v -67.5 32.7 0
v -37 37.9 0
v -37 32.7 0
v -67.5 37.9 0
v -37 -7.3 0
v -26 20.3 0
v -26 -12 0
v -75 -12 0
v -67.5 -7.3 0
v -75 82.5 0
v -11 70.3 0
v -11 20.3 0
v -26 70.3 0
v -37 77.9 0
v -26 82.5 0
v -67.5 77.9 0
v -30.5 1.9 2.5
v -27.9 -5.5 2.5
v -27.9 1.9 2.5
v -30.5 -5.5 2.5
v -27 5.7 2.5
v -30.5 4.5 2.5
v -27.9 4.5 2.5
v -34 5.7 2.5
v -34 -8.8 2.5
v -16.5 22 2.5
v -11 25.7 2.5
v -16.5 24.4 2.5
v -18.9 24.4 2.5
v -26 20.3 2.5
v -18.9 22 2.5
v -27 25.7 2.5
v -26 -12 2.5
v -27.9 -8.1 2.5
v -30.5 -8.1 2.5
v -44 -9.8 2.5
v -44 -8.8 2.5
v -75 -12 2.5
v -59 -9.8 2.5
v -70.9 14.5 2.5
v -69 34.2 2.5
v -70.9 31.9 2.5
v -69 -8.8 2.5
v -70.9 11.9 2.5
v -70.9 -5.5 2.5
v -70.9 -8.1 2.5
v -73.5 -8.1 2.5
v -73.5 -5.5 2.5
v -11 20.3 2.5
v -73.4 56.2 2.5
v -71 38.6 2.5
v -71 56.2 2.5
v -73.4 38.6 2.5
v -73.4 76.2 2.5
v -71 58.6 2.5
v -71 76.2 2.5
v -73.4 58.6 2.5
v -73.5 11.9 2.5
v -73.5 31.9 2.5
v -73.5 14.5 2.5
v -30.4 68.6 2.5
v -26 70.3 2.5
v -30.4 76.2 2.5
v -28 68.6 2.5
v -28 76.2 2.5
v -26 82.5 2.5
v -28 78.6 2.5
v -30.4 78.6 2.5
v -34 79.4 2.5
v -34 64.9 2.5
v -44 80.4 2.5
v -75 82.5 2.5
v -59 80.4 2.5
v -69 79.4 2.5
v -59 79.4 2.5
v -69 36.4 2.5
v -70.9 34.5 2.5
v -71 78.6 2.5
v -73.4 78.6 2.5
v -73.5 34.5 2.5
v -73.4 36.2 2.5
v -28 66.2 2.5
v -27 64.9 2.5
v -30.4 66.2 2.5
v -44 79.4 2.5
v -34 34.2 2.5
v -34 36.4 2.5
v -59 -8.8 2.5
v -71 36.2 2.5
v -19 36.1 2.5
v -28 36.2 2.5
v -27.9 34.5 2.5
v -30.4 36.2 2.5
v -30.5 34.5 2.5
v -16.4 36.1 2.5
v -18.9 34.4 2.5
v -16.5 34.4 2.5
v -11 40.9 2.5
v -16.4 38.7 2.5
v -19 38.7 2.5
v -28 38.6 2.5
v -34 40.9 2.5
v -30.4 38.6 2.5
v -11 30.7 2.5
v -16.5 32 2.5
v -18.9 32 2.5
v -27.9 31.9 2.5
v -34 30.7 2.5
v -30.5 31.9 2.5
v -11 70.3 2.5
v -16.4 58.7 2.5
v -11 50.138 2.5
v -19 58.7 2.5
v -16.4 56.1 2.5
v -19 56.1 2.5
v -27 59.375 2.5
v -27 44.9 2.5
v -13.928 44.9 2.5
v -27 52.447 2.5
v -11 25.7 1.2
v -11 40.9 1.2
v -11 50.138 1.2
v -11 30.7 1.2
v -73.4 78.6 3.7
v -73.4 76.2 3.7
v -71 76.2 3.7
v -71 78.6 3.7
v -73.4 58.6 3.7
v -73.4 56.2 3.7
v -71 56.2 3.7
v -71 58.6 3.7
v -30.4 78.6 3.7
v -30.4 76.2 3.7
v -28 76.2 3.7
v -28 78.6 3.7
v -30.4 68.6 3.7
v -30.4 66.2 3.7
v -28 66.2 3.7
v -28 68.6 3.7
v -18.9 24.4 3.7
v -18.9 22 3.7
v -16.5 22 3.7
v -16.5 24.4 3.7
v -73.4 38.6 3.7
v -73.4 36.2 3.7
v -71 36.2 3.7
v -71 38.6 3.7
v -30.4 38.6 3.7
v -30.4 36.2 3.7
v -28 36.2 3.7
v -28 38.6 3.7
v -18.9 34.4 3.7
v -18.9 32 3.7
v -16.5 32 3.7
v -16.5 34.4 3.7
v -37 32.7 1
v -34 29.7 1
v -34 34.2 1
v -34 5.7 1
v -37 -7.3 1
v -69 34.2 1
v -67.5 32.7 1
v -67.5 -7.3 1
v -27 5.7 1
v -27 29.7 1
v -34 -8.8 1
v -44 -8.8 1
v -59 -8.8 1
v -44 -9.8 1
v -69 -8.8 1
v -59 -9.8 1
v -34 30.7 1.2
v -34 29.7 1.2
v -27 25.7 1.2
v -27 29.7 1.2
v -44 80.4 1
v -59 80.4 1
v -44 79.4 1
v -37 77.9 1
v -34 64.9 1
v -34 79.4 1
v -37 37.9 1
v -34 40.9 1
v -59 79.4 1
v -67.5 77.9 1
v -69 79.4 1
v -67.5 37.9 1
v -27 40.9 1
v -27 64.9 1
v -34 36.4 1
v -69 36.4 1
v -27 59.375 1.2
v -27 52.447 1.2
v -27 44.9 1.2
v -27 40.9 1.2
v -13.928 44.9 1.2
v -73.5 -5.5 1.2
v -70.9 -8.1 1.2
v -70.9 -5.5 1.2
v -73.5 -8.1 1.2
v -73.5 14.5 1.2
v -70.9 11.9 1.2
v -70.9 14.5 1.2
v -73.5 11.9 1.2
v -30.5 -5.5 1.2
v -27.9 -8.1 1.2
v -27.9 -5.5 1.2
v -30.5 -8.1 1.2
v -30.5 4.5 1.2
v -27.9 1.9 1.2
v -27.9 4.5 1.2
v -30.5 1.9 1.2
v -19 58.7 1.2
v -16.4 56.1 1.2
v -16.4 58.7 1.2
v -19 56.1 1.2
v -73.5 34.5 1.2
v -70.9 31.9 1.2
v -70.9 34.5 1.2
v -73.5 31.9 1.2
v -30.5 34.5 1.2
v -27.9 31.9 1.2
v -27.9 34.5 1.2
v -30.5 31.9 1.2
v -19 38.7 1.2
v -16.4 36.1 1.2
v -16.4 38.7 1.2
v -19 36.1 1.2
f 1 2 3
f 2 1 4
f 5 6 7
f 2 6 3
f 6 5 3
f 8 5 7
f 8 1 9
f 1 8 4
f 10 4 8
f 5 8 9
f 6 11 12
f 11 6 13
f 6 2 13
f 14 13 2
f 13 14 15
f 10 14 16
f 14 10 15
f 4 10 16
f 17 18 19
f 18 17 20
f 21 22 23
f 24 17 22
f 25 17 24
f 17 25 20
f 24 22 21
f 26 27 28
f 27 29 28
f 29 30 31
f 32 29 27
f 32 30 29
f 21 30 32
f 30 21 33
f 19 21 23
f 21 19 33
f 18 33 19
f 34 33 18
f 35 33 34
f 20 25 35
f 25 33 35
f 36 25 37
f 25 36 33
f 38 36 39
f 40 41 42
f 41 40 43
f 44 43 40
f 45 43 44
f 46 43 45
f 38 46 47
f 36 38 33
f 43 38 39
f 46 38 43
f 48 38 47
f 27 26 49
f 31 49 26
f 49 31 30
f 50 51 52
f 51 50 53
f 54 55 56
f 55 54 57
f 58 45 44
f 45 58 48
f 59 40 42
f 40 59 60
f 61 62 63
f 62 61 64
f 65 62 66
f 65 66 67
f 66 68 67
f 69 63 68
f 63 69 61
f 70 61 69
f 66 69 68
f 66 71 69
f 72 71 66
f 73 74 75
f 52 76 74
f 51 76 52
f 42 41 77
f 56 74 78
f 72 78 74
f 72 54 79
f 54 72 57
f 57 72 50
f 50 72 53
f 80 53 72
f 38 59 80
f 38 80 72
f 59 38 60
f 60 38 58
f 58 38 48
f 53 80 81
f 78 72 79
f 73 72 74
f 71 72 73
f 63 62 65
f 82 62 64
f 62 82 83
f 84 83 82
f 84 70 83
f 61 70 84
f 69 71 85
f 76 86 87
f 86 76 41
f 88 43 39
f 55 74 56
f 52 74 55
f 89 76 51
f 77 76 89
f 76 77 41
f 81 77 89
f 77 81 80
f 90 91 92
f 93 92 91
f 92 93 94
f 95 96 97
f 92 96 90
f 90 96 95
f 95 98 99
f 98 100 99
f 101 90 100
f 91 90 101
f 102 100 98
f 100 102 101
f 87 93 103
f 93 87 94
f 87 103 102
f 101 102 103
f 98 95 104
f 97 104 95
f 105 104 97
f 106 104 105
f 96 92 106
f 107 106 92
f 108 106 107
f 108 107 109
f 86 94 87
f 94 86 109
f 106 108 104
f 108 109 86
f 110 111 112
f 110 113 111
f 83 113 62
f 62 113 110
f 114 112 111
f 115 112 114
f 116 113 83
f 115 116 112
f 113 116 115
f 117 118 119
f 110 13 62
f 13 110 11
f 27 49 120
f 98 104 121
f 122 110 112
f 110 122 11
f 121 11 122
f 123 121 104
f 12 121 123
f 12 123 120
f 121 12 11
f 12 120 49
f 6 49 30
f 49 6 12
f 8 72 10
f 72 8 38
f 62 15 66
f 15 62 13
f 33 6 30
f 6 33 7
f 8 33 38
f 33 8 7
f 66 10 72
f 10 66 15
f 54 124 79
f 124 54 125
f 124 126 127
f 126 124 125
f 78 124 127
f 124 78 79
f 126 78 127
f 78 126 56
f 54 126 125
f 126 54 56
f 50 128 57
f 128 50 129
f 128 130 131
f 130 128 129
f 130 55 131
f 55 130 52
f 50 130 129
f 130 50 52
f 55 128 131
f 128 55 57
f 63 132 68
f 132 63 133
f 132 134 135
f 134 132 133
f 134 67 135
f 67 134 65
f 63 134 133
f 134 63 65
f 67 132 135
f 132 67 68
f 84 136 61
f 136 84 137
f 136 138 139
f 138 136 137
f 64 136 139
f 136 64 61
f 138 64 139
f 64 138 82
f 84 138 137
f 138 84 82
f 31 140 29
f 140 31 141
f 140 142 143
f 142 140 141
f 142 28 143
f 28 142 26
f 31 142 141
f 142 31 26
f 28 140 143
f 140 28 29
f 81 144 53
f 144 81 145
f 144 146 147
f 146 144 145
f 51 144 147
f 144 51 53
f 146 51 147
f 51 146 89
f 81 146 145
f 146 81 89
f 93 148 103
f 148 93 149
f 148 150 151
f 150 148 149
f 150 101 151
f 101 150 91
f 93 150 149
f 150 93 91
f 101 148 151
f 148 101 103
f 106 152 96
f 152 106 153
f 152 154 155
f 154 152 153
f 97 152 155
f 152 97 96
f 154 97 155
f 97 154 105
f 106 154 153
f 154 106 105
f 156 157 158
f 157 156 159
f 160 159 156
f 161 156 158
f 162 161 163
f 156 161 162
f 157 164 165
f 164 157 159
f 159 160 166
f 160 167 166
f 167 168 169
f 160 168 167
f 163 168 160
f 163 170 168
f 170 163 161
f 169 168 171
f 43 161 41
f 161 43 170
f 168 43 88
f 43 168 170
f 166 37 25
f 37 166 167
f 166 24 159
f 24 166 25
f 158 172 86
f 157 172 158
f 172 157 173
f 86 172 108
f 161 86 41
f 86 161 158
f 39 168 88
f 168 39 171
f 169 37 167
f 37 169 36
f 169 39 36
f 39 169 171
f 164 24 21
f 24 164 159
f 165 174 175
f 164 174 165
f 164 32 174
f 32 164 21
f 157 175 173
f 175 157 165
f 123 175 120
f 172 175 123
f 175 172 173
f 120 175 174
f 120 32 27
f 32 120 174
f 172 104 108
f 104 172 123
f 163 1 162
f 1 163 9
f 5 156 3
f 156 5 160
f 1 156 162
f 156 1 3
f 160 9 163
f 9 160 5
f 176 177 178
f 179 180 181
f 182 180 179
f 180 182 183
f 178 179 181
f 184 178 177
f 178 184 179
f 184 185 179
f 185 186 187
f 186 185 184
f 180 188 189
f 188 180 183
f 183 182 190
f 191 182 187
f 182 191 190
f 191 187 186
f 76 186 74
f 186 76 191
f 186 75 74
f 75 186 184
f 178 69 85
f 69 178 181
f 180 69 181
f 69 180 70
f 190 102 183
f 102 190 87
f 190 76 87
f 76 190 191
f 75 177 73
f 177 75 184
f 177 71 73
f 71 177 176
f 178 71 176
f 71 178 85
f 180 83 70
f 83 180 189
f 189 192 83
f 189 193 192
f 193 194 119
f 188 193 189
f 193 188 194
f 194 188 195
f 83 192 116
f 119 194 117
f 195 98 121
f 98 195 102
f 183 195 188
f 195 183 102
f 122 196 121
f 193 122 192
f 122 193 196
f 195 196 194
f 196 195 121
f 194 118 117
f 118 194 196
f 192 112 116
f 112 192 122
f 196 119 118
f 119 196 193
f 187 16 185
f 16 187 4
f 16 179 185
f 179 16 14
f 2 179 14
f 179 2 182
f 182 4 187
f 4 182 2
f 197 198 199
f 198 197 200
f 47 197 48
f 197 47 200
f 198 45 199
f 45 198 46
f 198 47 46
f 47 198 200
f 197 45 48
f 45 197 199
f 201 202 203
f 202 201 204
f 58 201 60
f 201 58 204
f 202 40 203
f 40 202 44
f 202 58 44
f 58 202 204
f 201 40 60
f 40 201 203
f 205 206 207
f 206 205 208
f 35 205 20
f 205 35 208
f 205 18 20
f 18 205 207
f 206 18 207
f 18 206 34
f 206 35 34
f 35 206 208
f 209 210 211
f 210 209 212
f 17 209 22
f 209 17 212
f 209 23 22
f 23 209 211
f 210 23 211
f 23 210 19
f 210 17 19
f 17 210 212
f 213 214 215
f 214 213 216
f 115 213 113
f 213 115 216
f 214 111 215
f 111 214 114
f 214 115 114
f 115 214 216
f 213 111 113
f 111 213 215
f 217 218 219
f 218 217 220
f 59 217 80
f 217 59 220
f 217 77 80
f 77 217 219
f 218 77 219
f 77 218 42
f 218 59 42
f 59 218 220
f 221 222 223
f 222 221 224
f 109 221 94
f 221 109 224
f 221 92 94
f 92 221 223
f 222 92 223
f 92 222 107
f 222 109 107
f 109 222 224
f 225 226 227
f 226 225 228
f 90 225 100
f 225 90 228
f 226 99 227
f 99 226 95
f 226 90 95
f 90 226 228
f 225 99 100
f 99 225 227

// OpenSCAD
//mot yet finished

rotate([0,-90,0]) translate([0, 0, 04]) difference() {
    union() {
        //translate([0, 0.3, 8]) cube([2.5, 70, 46]);
        
        translate([0, 20.3, 7]) cube([2.5, 50, 20]);
        translate([0, -12, 22]) cube([2.5, 94.5, 49]);
        translate([2.5, 76.2, 67]) cube([1.2, 2.4,2.4]);
        translate([2.5, 56.2, 67]) cube([1.2, 2.4,2.4]);
        translate([2.5, 76.2, 24]) cube([1.2, 2.4,2.4]);
        translate([2.5, 66.2, 24]) cube([1.2, 2.4,2.4]);
        translate([2.5, 22, 12.5]) cube([1.2, 2.4,2.4]);
        translate([2.5, 36.2, 67]) cube([1.2, 2.4,2.4]);
        translate([2.5, 36.2, 24]) cube([1.2, 2.4,2.4]);
        translate([2.5, 32, 12.5]) cube([1.2, 2.4,2.4]);
    }
    
    //corners
    translate([1.2, 1.9-10, 66.9]) cube([1.3, 2.6,2.6]);
    translate([1.2, 1.9+10, 66.9]) cube([1.3, 2.6,2.6]);
    translate([1.2, 1.9-10, 23.9]) cube([1.3, 2.6,2.6]);
    translate([1.2, 1.9, 23.9]) cube([1.3, 2.6,2.6]);
    translate([1.2, 56.1, 12.4]) cube([1.3, 2.6,2.6]);
    translate([1.2, 31.9, 66.9]) cube([1.3, 2.6,2.6]);
    translate([1.2, 31.9, 23.9]) cube([1.3, 2.6,2.6]);
    translate([1.2, 36.1, 12.4]) cube([1.3, 2.6,2.6]);
    
   
    
    translate([0,34.7,23]) mirror([0,-1,0]) {
        translate([1, 0.5, 7]) cube([1.5, 43, 35]);
        translate([1, 40.5, 17]) cube([1.5, 4, 15]);
        translate([1, 5, 0]) cube([1.5, 24, 10]);
        
        //for wires
        translate([1.2,4,-20]) cube([2, 5, 40]);
        //translate([1.2,5,-20]) rotate([-30,0,0]) cube([2, 6, 30]);
        
        translate([0,2,10]) cube([5,40,30.5]);
    }

    
    translate([0,35.9,23]) {
        translate([1, 0.5, 7]) cube([1.5, 43, 35]);
        translate([1, 40.5, 17]) cube([1.5, 4, 15]);
        translate([1, 5, 0]) cube([1.5, 24, 10]);
        
        //for wires
        translate([1.2,5,-40]) cube([2, 4, 40]);
        translate([1.2,5,-20]) rotate([-30,0,0]) cube([2, 6, 30]);
        
        translate([0,2,10]) cube([5,40,30.5]);
    }
}
